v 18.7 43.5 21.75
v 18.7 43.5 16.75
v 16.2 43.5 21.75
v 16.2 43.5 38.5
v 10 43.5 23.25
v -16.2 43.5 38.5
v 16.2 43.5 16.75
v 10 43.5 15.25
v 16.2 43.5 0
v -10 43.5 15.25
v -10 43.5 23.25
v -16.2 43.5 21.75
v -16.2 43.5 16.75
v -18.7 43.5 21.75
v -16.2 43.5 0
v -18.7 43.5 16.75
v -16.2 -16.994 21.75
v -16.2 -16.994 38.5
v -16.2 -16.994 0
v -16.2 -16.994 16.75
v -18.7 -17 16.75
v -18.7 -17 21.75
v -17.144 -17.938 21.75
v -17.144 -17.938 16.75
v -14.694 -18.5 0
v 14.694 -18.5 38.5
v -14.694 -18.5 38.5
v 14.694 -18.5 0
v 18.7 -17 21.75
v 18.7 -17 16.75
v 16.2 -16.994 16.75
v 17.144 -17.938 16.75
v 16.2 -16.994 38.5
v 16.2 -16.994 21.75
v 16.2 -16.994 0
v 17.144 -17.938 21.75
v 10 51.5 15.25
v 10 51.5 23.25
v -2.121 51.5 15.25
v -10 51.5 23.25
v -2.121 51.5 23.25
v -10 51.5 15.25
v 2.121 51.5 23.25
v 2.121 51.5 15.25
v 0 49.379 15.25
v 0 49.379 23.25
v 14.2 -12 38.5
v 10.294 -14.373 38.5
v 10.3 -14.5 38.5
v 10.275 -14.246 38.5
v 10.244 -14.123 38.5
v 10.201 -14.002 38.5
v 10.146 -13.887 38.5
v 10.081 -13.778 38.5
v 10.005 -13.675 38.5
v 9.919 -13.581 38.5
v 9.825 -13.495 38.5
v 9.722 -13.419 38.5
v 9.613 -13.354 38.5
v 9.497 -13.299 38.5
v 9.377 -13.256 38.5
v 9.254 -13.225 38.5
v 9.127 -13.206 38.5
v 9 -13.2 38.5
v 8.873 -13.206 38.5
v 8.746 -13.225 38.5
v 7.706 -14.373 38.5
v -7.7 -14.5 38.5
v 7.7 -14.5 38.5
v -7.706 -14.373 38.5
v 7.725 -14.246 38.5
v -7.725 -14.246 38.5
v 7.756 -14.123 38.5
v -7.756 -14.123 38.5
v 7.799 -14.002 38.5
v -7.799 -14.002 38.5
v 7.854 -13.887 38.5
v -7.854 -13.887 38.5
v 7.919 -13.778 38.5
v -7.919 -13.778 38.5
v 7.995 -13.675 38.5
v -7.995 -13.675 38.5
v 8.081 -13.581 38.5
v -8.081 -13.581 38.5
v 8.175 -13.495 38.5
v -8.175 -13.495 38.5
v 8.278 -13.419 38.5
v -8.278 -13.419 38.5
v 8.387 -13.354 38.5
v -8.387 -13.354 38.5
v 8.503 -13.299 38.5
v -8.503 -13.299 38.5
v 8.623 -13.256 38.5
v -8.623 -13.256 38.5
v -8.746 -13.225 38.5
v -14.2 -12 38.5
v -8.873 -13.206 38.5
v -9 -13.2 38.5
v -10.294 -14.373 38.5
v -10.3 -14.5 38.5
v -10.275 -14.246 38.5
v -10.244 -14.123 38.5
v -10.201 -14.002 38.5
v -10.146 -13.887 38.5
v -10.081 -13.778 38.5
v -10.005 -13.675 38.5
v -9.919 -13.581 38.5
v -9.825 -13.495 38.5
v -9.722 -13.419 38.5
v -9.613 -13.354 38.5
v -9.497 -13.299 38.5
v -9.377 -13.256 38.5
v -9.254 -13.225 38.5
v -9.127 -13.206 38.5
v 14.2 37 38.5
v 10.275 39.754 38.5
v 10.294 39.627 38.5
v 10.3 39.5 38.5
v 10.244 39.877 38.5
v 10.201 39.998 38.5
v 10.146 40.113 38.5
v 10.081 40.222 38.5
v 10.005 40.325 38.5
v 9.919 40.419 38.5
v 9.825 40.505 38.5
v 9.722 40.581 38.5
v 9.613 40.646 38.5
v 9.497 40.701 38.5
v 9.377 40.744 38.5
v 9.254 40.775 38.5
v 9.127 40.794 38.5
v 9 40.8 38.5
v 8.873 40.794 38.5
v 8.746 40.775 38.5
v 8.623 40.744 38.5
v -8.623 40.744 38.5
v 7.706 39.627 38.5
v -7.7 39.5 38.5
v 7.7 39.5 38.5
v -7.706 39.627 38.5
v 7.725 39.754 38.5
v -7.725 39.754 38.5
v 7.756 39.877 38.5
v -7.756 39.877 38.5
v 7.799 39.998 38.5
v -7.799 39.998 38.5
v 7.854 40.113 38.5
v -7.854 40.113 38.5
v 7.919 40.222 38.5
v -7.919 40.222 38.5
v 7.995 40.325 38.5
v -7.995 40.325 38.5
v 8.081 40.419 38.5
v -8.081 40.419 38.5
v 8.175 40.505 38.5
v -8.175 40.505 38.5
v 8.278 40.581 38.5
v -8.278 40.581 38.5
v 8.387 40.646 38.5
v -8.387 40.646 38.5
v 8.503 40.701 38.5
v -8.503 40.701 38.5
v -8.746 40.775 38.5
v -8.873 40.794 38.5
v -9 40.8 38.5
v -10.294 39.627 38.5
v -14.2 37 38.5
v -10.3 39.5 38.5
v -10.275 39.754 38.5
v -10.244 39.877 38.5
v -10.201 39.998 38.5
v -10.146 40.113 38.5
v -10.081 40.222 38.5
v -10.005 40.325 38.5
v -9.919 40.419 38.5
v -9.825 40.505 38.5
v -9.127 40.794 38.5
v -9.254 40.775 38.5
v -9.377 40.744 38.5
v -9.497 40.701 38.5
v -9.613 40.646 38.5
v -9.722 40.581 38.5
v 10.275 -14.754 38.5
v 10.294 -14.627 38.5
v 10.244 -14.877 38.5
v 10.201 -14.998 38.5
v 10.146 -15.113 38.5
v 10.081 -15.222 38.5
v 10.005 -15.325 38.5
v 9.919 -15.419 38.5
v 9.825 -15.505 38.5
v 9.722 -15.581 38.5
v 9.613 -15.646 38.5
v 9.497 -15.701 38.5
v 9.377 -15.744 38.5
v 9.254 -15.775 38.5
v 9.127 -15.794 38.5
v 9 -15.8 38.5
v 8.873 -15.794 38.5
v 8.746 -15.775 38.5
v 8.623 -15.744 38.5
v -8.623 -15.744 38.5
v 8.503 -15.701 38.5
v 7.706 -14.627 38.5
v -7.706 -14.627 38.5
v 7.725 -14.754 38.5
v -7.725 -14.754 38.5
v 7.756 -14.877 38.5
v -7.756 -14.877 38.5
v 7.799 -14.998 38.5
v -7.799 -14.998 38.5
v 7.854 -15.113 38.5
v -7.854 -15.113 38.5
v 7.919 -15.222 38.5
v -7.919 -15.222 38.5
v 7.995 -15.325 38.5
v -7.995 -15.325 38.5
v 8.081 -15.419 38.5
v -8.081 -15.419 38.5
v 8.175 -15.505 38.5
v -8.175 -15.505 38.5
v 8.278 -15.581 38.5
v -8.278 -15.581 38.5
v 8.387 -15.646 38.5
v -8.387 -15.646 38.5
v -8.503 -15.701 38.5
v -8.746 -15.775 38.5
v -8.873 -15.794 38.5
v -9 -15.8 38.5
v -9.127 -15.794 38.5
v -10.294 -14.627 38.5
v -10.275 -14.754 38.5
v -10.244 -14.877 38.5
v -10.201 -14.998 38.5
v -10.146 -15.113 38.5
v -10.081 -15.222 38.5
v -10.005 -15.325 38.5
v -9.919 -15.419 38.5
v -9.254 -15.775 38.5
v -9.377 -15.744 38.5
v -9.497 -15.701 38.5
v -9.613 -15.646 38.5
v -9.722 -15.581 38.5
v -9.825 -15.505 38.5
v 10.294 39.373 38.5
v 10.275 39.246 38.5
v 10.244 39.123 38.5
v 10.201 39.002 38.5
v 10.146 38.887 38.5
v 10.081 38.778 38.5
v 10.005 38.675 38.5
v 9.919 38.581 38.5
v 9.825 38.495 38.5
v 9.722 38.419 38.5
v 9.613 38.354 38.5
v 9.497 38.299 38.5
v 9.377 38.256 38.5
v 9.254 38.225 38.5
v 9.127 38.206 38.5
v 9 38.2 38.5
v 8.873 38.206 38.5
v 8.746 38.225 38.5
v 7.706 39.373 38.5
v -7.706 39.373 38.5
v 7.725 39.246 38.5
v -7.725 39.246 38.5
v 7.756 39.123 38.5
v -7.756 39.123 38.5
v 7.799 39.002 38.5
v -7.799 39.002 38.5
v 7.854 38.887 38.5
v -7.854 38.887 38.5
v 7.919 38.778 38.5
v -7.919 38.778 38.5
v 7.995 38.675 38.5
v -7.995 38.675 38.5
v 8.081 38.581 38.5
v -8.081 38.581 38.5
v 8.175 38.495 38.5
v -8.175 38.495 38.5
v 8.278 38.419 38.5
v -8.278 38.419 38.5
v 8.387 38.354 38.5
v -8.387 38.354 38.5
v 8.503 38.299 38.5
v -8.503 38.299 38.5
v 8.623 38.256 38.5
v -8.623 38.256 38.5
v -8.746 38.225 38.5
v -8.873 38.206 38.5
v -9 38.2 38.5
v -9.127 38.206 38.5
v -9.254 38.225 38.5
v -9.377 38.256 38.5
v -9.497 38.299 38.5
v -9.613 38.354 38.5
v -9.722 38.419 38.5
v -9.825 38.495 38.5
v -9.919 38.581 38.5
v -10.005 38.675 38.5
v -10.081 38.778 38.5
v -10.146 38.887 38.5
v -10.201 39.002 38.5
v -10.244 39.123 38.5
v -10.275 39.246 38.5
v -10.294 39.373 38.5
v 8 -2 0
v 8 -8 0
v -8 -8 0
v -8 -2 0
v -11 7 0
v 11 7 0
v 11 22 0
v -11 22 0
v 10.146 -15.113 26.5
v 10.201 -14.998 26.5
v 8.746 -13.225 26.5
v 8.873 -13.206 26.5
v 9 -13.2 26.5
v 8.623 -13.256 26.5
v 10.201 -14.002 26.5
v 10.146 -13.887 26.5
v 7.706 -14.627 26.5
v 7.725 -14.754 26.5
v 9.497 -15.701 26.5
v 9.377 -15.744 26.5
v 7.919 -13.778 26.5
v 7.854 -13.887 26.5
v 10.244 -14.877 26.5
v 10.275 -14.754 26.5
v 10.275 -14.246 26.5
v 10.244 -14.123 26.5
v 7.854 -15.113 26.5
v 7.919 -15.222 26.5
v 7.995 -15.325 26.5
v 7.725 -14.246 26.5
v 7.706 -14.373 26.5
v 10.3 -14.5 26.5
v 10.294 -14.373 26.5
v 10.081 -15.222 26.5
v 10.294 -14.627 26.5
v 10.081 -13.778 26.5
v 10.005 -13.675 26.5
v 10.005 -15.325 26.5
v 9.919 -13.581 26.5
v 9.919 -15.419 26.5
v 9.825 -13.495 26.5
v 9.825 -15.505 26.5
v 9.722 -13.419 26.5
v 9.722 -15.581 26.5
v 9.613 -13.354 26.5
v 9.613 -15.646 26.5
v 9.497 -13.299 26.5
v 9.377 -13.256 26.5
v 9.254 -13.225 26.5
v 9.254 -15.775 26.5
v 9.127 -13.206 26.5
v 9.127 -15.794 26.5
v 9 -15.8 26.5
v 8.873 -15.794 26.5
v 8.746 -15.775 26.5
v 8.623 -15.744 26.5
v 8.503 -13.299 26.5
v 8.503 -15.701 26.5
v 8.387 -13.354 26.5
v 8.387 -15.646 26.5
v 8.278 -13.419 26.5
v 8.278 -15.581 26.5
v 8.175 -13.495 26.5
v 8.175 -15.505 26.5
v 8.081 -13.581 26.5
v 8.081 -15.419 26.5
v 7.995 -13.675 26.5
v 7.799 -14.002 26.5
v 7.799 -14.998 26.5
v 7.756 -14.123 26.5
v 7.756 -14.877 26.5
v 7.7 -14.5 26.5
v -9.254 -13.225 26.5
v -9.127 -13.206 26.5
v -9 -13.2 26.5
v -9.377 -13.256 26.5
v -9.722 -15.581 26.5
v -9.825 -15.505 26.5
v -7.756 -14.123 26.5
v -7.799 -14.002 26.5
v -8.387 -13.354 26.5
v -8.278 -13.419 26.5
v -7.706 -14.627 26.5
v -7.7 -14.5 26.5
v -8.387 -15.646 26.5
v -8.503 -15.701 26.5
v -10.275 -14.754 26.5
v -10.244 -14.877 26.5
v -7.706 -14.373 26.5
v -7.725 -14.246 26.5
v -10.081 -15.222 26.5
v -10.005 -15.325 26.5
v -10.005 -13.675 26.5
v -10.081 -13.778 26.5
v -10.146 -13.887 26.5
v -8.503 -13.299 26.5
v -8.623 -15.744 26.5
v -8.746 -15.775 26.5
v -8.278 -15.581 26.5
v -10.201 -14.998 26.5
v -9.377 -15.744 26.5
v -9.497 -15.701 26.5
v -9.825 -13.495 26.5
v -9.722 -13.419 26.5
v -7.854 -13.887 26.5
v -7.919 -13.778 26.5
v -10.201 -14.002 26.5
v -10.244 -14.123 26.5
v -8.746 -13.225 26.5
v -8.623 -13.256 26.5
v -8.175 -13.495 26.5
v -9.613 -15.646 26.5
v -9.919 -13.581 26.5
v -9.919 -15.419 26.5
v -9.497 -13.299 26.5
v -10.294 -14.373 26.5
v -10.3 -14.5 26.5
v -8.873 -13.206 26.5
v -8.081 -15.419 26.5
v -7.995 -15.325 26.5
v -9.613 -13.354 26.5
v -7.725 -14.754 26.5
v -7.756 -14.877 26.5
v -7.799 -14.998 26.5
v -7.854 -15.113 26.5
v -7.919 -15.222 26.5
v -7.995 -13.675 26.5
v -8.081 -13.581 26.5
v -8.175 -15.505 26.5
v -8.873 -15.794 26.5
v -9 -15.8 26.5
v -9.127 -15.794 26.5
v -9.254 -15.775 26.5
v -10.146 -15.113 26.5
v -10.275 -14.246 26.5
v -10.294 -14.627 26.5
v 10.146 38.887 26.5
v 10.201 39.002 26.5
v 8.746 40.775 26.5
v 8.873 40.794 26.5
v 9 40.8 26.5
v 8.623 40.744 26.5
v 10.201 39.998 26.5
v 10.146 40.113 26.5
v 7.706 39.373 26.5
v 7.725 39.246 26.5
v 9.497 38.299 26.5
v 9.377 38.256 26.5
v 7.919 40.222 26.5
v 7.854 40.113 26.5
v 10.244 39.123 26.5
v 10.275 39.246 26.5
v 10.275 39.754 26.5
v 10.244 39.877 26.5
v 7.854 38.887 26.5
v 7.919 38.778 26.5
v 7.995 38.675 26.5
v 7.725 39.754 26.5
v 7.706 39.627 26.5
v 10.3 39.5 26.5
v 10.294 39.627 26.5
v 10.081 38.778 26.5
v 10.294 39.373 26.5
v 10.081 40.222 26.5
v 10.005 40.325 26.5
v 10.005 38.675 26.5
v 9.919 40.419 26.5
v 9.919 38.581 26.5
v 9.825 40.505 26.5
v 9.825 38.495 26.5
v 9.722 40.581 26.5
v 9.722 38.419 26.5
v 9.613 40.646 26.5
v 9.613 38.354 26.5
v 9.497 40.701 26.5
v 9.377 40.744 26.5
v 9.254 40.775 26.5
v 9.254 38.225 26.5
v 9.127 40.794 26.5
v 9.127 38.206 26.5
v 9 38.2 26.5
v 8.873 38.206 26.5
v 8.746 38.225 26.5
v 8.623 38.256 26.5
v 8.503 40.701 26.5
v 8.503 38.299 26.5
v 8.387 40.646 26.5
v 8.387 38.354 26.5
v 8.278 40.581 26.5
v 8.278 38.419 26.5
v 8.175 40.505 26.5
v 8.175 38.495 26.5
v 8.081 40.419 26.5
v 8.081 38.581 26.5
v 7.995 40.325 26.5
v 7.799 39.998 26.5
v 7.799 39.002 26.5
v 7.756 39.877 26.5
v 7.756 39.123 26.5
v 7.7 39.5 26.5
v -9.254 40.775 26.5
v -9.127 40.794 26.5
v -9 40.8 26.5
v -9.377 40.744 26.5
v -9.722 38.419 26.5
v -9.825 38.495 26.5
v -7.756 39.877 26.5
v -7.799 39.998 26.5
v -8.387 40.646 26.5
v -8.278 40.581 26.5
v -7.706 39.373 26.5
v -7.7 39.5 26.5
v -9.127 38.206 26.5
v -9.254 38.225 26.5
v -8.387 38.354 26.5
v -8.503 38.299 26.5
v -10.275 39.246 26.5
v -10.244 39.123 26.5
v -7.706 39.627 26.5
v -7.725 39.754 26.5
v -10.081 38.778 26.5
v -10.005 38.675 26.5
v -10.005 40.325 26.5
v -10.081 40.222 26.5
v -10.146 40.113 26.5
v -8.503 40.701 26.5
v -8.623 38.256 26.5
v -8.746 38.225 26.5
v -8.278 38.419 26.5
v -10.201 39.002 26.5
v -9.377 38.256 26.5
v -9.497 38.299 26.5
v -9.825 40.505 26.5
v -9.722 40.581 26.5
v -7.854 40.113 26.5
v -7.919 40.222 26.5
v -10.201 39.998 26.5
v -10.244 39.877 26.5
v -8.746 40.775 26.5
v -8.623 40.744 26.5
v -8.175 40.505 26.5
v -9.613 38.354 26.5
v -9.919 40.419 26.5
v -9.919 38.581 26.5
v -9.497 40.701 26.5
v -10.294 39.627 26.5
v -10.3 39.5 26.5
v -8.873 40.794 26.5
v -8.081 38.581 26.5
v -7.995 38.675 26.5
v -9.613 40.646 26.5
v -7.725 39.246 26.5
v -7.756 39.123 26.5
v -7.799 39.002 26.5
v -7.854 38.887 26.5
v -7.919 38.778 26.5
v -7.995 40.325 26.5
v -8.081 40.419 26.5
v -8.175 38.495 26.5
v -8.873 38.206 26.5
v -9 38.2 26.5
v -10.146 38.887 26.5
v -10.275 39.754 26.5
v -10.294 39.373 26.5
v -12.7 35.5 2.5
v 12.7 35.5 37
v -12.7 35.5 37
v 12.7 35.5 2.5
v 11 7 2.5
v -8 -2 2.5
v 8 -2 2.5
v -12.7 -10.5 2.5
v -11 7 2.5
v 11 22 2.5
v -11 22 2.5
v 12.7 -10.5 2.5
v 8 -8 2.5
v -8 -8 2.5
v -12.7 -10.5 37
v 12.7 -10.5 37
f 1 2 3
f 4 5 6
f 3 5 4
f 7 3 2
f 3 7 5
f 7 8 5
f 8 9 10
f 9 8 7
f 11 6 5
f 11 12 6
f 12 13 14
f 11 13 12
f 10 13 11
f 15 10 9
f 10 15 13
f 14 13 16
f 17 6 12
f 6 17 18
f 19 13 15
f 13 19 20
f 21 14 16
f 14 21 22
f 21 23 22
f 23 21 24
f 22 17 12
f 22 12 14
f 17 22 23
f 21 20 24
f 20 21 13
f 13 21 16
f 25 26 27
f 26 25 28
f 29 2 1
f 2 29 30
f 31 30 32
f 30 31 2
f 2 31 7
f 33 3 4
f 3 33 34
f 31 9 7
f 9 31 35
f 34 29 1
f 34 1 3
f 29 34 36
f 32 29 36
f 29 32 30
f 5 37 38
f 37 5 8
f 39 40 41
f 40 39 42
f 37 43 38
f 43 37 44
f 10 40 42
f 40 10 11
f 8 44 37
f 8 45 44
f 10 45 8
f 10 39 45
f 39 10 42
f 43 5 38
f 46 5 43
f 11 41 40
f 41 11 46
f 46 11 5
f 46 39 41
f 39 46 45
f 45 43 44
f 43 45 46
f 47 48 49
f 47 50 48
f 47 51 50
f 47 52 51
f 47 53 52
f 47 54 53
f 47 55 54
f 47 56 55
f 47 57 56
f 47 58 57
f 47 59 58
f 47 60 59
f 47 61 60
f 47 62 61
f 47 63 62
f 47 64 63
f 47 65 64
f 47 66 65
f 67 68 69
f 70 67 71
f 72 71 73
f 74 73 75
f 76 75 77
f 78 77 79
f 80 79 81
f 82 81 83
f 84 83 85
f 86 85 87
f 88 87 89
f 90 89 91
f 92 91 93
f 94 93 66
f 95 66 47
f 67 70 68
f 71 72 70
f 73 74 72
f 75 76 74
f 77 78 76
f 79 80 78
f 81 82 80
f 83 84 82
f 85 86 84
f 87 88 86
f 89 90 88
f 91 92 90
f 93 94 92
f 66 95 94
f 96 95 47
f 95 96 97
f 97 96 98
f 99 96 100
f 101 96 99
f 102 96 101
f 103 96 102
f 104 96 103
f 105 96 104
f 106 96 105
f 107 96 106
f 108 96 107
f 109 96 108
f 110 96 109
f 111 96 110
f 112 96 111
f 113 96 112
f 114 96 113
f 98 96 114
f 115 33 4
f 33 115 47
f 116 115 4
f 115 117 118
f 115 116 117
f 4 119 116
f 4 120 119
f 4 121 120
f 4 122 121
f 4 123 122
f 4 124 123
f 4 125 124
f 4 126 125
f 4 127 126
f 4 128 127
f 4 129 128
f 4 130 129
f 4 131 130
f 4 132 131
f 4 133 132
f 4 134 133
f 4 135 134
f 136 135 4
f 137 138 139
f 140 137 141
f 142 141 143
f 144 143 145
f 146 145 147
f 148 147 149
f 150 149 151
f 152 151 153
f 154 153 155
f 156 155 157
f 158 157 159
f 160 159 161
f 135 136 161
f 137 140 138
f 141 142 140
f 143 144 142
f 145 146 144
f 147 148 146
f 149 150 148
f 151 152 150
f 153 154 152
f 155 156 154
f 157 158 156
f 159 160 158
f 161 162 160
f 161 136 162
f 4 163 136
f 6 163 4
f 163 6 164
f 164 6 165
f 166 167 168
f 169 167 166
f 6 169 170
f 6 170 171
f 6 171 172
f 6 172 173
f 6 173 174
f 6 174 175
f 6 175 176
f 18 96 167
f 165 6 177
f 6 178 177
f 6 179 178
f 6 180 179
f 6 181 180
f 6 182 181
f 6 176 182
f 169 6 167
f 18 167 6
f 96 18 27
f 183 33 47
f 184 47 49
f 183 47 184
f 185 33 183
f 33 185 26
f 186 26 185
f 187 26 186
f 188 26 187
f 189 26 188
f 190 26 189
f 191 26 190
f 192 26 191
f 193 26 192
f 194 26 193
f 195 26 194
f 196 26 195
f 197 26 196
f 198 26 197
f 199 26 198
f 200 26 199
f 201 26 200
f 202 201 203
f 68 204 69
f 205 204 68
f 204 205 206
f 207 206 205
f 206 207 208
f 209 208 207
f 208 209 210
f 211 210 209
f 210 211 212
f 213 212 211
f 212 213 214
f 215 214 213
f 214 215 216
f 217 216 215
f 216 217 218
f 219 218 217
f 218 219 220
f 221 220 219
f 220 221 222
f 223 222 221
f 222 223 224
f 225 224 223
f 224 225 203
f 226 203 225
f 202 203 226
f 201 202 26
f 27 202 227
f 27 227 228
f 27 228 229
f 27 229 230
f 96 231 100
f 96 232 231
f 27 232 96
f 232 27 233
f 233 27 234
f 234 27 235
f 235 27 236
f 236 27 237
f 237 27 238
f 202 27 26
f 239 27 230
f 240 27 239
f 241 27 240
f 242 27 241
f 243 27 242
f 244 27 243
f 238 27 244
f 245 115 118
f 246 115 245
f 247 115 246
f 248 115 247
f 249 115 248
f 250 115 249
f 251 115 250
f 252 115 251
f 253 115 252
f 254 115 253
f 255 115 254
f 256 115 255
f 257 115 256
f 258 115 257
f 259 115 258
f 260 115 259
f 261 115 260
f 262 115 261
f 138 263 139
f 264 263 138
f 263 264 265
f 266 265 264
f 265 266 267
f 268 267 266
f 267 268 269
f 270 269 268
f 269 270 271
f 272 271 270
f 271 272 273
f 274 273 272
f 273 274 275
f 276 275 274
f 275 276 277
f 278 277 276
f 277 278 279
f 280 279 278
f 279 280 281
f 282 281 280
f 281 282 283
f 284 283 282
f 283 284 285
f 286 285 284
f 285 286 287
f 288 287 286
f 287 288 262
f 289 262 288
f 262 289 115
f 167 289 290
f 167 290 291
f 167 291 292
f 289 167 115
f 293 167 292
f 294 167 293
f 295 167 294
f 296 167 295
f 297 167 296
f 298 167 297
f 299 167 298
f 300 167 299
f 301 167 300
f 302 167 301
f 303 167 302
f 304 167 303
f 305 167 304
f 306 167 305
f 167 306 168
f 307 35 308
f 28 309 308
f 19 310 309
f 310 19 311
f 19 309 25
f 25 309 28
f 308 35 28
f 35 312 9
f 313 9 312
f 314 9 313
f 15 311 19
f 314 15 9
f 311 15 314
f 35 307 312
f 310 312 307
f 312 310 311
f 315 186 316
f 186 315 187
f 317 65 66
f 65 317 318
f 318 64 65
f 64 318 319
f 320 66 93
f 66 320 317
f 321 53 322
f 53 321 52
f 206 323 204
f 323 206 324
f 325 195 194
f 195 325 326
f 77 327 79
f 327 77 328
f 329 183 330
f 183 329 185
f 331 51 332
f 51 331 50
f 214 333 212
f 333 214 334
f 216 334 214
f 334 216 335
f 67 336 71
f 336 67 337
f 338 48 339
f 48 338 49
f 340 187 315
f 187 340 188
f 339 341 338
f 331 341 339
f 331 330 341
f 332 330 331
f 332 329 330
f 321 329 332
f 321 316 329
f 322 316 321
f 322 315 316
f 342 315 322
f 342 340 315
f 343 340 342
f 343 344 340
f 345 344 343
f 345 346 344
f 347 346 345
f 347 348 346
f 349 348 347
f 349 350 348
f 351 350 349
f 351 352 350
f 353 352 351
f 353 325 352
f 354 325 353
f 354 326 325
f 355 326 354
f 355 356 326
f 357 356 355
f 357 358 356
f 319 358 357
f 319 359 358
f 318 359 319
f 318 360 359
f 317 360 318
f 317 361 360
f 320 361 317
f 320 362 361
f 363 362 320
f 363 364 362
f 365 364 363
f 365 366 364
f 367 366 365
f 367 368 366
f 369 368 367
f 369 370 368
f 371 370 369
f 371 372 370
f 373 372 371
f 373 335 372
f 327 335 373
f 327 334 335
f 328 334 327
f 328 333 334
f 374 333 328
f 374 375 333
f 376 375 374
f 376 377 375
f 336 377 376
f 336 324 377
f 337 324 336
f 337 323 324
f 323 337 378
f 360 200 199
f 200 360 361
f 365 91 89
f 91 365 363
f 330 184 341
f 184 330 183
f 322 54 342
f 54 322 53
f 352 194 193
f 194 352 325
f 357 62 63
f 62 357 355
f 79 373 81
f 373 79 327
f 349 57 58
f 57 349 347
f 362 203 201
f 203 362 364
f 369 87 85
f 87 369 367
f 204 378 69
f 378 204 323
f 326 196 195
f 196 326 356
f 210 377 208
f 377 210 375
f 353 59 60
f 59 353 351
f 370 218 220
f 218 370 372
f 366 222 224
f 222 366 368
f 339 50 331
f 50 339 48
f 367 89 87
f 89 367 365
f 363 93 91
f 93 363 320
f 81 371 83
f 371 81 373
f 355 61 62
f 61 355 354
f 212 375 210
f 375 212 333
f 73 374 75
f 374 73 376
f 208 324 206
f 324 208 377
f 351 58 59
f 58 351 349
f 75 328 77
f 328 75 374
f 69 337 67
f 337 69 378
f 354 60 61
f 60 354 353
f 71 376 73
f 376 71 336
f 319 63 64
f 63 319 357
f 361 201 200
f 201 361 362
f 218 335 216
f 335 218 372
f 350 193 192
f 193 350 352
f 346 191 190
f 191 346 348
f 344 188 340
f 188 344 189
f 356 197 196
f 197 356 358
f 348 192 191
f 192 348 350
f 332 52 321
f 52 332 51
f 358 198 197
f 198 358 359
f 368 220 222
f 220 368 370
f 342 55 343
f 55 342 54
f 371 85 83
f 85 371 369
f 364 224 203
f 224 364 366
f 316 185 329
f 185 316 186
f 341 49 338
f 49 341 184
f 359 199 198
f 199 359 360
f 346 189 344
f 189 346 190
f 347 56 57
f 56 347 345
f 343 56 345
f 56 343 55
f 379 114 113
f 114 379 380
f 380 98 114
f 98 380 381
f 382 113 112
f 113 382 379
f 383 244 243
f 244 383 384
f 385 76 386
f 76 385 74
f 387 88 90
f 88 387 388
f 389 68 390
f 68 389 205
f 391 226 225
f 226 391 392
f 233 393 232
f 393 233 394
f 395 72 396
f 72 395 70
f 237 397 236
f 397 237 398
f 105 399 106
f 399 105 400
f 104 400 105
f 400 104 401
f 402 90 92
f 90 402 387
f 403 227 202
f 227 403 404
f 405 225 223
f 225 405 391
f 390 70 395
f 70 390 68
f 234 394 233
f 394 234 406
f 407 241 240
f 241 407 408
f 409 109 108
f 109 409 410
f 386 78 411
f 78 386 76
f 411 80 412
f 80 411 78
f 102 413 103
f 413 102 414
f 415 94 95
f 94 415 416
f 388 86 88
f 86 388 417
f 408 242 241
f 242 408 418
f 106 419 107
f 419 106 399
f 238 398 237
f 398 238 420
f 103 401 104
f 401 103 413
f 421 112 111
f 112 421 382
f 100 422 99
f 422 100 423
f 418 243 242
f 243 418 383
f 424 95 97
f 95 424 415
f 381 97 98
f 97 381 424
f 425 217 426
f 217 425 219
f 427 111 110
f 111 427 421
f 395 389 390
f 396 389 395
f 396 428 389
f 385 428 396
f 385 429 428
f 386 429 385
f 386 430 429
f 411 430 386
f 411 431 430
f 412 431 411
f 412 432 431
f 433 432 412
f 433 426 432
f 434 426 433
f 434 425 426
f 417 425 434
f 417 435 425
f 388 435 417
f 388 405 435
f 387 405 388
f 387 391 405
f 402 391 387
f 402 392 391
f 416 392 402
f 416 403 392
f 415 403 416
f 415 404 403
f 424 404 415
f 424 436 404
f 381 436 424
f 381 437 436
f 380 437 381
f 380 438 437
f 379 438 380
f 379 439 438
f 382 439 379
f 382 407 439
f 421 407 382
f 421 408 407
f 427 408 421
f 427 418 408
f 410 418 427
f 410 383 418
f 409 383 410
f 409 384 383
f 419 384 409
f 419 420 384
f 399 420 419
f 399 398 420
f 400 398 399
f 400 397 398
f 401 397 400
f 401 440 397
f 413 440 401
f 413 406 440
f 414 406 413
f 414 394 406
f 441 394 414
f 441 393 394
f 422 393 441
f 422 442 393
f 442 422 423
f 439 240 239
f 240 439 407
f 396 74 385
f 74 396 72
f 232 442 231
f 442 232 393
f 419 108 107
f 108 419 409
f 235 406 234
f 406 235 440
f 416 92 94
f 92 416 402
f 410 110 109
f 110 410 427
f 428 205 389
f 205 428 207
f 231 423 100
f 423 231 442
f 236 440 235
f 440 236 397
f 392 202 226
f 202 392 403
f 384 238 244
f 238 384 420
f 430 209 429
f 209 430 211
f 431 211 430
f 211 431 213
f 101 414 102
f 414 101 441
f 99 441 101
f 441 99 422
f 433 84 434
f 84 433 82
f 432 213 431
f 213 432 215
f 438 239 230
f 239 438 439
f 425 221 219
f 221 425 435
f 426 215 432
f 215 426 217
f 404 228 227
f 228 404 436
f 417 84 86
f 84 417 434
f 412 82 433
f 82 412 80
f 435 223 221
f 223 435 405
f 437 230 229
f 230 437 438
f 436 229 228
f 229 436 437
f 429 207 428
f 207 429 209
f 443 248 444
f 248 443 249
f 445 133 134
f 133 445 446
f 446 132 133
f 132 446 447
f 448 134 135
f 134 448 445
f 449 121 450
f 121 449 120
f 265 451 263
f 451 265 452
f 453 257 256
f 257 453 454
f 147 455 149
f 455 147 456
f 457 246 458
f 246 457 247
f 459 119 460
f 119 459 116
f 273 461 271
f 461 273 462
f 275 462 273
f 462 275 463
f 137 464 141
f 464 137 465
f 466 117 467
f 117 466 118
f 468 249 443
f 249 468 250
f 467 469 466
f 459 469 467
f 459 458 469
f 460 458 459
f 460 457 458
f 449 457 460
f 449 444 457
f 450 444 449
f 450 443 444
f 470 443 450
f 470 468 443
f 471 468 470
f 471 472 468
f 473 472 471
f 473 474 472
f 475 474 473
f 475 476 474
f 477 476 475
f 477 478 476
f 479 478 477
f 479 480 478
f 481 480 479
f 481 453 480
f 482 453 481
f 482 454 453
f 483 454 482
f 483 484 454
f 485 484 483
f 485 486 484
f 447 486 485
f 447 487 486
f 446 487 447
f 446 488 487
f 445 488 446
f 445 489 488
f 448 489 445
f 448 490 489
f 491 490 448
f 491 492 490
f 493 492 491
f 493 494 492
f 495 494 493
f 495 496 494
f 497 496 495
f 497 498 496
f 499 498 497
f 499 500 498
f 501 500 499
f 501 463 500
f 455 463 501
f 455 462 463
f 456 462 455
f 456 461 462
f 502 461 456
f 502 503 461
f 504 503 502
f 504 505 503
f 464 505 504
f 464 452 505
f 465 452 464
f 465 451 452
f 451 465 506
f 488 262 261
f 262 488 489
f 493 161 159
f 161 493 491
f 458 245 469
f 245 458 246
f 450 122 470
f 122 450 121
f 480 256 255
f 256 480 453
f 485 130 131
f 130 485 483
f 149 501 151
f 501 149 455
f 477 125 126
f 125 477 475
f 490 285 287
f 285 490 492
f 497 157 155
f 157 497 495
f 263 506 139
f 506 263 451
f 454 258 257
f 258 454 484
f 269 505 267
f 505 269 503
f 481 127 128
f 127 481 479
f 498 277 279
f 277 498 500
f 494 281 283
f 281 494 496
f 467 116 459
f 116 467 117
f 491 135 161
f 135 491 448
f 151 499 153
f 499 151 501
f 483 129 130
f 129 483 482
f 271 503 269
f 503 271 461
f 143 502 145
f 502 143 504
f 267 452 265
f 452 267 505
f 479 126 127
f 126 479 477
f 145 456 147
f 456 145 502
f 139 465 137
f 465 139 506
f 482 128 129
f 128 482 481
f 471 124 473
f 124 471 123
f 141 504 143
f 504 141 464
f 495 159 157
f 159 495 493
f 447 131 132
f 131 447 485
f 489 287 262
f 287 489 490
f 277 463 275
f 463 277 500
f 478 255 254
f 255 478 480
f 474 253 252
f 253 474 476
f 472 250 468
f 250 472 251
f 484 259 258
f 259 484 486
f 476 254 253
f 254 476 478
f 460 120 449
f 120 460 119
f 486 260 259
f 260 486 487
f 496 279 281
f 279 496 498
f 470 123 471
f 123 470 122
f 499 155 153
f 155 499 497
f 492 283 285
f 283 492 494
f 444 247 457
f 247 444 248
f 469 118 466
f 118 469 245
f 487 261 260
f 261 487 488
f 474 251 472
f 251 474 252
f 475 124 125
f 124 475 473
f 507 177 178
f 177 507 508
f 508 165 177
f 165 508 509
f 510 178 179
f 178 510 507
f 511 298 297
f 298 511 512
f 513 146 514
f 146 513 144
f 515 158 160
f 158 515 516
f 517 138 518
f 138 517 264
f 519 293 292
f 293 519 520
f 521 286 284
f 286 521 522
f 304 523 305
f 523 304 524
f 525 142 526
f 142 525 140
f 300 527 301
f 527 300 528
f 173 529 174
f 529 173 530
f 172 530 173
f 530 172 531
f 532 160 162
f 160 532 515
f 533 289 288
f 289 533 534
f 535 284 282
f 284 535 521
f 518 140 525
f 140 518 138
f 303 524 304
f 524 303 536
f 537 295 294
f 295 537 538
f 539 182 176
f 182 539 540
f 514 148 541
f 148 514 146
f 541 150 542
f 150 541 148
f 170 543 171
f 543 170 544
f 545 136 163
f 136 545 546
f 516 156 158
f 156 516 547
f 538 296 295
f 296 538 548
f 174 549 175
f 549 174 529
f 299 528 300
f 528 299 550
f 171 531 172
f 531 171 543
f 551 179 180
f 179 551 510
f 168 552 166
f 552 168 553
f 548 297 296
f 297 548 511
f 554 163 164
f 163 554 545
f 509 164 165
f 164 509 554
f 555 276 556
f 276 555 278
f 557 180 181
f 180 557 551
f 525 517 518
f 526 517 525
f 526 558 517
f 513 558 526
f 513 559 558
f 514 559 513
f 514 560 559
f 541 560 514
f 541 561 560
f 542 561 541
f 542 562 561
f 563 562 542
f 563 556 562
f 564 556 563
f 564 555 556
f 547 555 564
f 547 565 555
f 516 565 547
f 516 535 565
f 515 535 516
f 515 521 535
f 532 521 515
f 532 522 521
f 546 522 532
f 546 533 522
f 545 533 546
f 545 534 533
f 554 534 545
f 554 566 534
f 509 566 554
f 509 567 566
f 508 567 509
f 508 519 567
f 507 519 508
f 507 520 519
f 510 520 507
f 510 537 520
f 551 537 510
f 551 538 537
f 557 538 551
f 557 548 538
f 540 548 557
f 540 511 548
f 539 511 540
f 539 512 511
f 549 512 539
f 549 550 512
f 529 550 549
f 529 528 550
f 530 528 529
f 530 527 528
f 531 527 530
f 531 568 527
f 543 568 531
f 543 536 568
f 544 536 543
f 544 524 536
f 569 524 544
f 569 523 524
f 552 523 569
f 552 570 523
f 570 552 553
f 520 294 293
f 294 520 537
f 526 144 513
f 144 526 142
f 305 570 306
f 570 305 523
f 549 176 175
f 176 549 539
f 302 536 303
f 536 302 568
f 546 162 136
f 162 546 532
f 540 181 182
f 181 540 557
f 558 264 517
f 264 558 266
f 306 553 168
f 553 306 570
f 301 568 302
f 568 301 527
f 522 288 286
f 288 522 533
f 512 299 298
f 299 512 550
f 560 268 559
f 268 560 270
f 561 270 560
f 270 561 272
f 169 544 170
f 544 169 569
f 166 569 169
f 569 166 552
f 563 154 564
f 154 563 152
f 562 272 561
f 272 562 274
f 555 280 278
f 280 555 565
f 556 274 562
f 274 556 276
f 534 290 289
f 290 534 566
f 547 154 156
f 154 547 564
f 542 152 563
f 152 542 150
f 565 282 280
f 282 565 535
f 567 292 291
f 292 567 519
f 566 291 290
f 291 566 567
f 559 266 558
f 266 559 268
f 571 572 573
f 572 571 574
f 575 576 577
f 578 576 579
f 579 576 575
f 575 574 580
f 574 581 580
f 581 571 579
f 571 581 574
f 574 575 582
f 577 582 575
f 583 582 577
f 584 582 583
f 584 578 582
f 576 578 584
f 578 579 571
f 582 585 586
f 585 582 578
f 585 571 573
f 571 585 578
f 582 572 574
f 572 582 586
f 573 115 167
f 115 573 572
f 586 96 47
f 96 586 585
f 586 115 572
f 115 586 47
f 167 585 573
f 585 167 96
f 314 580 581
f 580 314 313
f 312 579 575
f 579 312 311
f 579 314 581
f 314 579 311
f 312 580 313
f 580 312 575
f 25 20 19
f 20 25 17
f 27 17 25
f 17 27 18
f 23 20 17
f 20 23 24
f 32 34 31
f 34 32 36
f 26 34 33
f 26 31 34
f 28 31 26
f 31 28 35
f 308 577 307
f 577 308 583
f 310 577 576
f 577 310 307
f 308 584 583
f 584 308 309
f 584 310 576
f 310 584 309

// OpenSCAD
// file: ../params.scad
// =====================================================================
//  Pip v2 — assembly-first robot dog. Shared parameters (mm).
//  Design rules: docs/ASSEMBLY_FIRST_DESIGN.md §3. Every part is built
//  by straight-down moves; the precision lives in the parts.
//  Keep in sync with software/config.yaml (tests/test_cad_sync.py checks).
// =====================================================================
$fn = 64;

// ---------- Feetech STS3215 bus servo (12 V, 30 kg·cm) ------------------
// Measured from the SO-ARM100 project's STS3215 model. Servo frame used
// below: origin = output axis on the case top face, +Z = shaft, +X = long
// axis from the shaft toward the far end of the case.
servo_len       = 45.4;
servo_wid       = 24.8;
servo_case_h    = 32.0;   // top face -> case bottom
servo_bottom    = 4.0;    // rear idler disc + connector pins below the case
servo_shaft_off = 10.2;   // shaft centre -> near end of the case
horn_d          = 20.0;   // aluminium disc horn
horn_t          = 1.6;
horn_hole_sq    = 9.9;    // 4 tapped M3 holes on a 9.9 mm square
horn_screw_clear_d = 7.0; // centre spline-screw head clearance
servo_mass_g    = 55;     // assumed (not measured)

// ---------- one fastener for everything: M3 x 8 socket head -----------
screw_len   = 8;
m3_clear    = 3.4;
m3_pilot    = 2.6;        // self-tapping an M3 machine screw into PETG
fit         = 0.3;        // clearance around servo cases & docks
lead_in     = 1.5;        // chamfer on every mating edge (capture range)

// ---------- servo cup (the one standard servo holder) ------------------
cup_side    = 3.5;
cup_end     = 8.0;        // end walls carry the cap screws
cup_floor   = 2.5;
cup_depth   = servo_case_h + servo_bottom + cup_floor;     // 38.5
cup_x0      = -servo_shaft_off - fit - cup_end;            // -18.5
cup_x1      = servo_len - servo_shaft_off + fit + cup_end; //  43.5
cup_hw      = servo_wid / 2 + fit + cup_side;              //  16.2
cap_t       = 1.2;        // thinner than the horn so links clear it
cap_screw_x = [cup_x0 + cup_end / 2, cup_x1 - cup_end / 2];
cap_screw_y = 9;

// link plates bolt straight onto the horn: plate + horn = screw length
link_t      = screw_len - horn_t;                          // 6.4

// ---------- grip lug (rule 7): flats 20 mm apart + 3 mm datum notch ----
lug_w = 20; lug_h = 8; datum = 3;

// ---------- body / leg layout (body frame: X fwd, Y left, Z up) -------
bx        = 95;    // hip axis X (front +, rear -)
rim_y     = 45;    // |Y| of the pitch servo top face = tray side face
L2        = 100;   // hip axis -> knee axis
L3        = 100;   // knee axis -> foot ball centre
foot_d    = 22;
// lateral stack, measured outward from the pitch-servo top face
upper_in  = rim_y + horn_t;            // 46.6
upper_out = upper_in + link_t;         // 53.0 = knee servo top face
lower_in  = upper_out + horn_t;        // 54.6
lower_out = lower_in + link_t;         // 61.0
foot_y    = (lower_in + lower_out) / 2;// 57.8  (software: geometry.foot_y)

// tray
tray_wall   = 3;
tray_floor  = 3;
tray_z0     = cup_x0 - tray_floor;     // -21.5 (hip block bottom = floor top)
tray_z1     = cup_x1;                  //  43.5 (hip block top = deck bottom)
sock_wall   = 3;
sock_hw     = cup_hw + fit;            // socket half width in X
tongue_w    = 5; tongue_d = 2.5;
tongue_y    = -(rim_y - cup_depth / 2);// tongue centre (Y, right side)
sock_in_y   = -(rim_y - cup_depth) + fit;   // socket inboard wall inner face
tray_hx     = bx + sock_hw + tongue_d + sock_wall + 0.5;
deck_t      = 3;

// neck: pan servo cup built into the tray, rim just above the deck
pan_x     = 53;
pan_rim_z = tray_z1 + deck_t + 0.1;    // 46.6
bracket_z0 = pan_rim_z + horn_t;       // pan bracket sits on the horn
bracket_z1 = bracket_z0 + link_t;
// tilt servo stands upright in a sleeve on the bracket, shaft -> -Y
tilt_top_y = -14;                      // tilt servo top face (Y)
tilt_rest  = 3.5;                      // servo rests on ribs clear of the pan-horn screw heads
tilt_z     = bracket_z1 + tilt_rest + fit + (servo_len - servo_shaft_off); // tilt axis Z
sleeve_wall = 6;                       // thick X walls take the cap screws

echo(str("foot_y=", foot_y, "  tray=", 2*tray_hx, " x ", 2*rim_y,
         "  tilt axis z=", tilt_z));
// main file
// Print 4x (all identical), inboard face down. PETG, 4 walls, 40% infill. No supports.
include <../lib.scad>
translate([-bx, 0, -(rim_y - cup_depth)]) rotate([-90, 0, 0]) hip_block();
